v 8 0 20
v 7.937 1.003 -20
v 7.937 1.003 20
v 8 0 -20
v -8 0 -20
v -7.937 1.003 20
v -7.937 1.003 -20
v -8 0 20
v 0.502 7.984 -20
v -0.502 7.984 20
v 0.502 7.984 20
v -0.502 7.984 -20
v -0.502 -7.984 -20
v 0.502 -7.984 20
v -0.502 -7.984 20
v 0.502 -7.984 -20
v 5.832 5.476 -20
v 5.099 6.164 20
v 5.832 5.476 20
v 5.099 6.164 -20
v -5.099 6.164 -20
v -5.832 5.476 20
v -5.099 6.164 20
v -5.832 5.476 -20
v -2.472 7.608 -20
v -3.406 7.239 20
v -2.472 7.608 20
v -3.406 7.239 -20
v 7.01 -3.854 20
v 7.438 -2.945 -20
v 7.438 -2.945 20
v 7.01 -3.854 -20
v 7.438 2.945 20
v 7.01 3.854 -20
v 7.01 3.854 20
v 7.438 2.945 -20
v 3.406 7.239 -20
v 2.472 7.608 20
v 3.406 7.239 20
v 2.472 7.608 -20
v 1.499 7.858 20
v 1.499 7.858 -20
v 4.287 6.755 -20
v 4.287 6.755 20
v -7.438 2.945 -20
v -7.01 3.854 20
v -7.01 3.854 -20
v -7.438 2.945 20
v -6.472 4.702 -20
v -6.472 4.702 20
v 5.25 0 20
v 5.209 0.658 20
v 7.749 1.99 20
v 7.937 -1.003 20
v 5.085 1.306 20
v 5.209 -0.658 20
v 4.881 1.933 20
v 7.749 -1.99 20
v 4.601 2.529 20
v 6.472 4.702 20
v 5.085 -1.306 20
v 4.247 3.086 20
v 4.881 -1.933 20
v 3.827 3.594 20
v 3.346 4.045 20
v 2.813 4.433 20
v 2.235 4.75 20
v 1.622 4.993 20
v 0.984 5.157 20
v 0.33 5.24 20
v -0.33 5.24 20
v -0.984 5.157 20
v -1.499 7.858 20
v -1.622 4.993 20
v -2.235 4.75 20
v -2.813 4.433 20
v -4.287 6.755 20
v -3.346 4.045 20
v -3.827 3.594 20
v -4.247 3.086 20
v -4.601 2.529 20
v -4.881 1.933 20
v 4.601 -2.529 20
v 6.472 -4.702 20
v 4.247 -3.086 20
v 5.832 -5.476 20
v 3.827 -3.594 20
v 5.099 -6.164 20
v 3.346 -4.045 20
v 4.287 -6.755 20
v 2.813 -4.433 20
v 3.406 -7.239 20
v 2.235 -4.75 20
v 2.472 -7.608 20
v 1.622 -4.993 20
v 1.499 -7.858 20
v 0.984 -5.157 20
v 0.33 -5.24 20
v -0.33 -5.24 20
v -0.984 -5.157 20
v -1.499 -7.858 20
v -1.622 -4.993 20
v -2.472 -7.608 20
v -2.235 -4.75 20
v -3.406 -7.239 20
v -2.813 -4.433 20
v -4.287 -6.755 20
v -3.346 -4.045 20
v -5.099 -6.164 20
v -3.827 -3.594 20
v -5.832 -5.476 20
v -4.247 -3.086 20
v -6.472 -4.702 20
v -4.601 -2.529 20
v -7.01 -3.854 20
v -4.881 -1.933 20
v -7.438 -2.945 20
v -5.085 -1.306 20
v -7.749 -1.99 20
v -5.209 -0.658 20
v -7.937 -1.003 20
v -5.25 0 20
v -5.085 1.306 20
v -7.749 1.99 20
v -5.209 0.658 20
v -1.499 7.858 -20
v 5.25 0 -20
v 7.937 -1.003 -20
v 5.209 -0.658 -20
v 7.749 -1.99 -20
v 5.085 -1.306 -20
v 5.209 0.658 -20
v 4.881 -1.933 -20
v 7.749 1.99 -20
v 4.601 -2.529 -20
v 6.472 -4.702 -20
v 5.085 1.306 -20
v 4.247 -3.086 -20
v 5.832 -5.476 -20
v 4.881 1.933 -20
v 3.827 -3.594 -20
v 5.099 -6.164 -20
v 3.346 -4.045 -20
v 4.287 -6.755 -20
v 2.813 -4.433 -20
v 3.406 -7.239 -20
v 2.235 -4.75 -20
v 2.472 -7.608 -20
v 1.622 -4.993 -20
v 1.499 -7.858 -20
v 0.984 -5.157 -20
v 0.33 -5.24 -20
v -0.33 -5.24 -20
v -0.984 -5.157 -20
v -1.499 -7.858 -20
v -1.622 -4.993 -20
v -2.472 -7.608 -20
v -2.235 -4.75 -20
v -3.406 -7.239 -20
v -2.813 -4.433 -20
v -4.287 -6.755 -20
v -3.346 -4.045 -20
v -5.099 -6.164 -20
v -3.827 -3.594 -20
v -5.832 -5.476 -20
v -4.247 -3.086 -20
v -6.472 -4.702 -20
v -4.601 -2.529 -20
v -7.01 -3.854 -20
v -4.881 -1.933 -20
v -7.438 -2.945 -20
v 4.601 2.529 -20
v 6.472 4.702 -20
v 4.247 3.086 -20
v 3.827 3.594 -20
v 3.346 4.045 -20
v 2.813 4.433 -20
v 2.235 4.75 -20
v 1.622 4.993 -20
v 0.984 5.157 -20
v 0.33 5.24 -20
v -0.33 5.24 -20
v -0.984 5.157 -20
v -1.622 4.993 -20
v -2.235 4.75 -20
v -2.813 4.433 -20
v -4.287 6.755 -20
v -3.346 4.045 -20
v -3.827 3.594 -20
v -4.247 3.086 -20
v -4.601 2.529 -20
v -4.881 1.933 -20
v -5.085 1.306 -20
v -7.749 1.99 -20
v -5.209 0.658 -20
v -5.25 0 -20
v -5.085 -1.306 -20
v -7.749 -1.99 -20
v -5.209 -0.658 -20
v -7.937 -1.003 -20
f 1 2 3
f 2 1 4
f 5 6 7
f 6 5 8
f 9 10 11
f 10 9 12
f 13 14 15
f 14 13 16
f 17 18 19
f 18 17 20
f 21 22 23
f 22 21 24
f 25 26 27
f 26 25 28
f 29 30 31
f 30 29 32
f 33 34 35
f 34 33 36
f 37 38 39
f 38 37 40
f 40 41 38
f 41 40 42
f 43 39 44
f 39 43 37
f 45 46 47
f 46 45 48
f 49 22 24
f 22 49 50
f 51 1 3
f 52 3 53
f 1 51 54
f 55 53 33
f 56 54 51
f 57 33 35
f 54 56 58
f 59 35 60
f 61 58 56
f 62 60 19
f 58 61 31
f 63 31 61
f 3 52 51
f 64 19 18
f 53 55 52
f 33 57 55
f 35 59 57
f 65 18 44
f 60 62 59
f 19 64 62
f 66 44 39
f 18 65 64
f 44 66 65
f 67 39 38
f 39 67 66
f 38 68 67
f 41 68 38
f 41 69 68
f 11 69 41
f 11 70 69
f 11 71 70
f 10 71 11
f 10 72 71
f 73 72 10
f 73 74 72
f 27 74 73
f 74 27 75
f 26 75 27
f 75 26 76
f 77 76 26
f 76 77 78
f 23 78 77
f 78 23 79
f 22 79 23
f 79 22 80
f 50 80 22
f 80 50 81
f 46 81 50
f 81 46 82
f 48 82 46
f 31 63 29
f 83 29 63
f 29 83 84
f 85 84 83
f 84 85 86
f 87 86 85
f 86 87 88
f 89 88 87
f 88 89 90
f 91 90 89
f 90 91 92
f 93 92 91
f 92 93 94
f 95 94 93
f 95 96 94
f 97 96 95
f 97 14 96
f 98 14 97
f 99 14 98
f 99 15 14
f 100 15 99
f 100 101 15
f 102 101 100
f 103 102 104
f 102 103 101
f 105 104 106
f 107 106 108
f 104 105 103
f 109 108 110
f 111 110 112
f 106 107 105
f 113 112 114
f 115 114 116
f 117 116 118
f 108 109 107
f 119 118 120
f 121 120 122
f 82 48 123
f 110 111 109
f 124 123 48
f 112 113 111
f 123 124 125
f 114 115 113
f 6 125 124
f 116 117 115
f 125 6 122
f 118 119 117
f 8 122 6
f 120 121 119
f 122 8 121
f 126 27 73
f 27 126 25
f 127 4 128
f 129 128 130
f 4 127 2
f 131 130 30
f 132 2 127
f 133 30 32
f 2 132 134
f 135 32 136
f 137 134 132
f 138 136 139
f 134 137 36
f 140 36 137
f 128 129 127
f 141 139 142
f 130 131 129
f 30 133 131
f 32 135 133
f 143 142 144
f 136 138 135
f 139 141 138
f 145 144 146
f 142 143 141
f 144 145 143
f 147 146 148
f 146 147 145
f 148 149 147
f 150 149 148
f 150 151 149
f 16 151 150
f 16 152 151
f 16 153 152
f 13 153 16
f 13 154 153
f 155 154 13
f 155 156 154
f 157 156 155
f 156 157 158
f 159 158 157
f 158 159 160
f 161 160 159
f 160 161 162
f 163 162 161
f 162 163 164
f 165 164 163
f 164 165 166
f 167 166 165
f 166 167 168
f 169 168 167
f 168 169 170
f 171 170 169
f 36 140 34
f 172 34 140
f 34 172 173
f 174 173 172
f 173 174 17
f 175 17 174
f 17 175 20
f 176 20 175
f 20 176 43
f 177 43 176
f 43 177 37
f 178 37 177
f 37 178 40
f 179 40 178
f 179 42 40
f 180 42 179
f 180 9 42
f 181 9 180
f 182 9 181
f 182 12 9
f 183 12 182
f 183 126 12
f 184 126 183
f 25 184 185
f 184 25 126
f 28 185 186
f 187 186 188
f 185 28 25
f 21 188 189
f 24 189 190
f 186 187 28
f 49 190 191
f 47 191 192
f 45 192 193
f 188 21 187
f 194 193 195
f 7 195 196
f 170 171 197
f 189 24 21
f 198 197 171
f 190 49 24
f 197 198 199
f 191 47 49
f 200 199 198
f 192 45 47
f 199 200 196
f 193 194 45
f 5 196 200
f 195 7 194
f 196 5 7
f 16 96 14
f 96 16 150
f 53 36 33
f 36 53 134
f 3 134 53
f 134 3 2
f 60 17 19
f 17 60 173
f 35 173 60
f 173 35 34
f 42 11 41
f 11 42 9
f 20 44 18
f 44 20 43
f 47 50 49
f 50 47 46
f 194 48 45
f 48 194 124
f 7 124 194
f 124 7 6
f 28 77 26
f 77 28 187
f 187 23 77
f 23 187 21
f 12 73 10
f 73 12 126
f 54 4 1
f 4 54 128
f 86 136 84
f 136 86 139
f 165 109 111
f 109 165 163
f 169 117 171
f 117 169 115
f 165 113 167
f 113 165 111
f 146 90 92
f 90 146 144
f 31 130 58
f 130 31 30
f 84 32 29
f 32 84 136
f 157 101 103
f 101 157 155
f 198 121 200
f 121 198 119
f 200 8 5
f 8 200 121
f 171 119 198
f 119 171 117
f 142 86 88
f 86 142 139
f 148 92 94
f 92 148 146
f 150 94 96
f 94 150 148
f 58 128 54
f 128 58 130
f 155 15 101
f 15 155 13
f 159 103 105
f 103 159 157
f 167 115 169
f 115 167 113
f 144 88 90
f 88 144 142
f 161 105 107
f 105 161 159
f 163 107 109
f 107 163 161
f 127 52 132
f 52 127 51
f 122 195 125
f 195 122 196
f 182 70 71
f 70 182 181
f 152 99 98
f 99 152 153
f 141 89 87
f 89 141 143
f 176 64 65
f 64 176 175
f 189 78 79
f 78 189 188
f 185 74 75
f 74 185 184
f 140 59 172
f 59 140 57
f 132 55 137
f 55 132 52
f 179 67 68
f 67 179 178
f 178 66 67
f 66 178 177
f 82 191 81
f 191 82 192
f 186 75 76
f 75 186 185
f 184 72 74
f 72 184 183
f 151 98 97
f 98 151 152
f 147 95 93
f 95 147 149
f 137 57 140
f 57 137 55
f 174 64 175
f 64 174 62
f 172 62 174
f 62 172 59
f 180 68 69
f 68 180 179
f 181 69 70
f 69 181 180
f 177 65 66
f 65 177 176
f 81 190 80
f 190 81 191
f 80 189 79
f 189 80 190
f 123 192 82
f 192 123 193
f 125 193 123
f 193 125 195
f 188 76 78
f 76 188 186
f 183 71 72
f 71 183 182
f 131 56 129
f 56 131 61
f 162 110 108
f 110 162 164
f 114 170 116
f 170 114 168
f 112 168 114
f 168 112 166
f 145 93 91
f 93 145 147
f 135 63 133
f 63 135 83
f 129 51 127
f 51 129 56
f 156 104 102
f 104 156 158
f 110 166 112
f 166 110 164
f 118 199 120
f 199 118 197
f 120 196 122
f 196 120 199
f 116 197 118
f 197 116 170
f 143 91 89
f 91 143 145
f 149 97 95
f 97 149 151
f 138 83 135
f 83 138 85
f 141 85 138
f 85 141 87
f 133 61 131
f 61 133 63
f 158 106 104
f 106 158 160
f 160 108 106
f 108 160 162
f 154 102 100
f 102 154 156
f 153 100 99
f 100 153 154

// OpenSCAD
$fn = 50;


difference() {
	union() {
		translate(v = [0, 0, -20.0000000000]) {
			cylinder(h = 40, r = 8.0000000000);
		}
	}
	union() {
		translate(v = [0, 0, -100.0000000000]) {
			cylinder(h = 200, r = 5.2500000000);
		}
	}
}
